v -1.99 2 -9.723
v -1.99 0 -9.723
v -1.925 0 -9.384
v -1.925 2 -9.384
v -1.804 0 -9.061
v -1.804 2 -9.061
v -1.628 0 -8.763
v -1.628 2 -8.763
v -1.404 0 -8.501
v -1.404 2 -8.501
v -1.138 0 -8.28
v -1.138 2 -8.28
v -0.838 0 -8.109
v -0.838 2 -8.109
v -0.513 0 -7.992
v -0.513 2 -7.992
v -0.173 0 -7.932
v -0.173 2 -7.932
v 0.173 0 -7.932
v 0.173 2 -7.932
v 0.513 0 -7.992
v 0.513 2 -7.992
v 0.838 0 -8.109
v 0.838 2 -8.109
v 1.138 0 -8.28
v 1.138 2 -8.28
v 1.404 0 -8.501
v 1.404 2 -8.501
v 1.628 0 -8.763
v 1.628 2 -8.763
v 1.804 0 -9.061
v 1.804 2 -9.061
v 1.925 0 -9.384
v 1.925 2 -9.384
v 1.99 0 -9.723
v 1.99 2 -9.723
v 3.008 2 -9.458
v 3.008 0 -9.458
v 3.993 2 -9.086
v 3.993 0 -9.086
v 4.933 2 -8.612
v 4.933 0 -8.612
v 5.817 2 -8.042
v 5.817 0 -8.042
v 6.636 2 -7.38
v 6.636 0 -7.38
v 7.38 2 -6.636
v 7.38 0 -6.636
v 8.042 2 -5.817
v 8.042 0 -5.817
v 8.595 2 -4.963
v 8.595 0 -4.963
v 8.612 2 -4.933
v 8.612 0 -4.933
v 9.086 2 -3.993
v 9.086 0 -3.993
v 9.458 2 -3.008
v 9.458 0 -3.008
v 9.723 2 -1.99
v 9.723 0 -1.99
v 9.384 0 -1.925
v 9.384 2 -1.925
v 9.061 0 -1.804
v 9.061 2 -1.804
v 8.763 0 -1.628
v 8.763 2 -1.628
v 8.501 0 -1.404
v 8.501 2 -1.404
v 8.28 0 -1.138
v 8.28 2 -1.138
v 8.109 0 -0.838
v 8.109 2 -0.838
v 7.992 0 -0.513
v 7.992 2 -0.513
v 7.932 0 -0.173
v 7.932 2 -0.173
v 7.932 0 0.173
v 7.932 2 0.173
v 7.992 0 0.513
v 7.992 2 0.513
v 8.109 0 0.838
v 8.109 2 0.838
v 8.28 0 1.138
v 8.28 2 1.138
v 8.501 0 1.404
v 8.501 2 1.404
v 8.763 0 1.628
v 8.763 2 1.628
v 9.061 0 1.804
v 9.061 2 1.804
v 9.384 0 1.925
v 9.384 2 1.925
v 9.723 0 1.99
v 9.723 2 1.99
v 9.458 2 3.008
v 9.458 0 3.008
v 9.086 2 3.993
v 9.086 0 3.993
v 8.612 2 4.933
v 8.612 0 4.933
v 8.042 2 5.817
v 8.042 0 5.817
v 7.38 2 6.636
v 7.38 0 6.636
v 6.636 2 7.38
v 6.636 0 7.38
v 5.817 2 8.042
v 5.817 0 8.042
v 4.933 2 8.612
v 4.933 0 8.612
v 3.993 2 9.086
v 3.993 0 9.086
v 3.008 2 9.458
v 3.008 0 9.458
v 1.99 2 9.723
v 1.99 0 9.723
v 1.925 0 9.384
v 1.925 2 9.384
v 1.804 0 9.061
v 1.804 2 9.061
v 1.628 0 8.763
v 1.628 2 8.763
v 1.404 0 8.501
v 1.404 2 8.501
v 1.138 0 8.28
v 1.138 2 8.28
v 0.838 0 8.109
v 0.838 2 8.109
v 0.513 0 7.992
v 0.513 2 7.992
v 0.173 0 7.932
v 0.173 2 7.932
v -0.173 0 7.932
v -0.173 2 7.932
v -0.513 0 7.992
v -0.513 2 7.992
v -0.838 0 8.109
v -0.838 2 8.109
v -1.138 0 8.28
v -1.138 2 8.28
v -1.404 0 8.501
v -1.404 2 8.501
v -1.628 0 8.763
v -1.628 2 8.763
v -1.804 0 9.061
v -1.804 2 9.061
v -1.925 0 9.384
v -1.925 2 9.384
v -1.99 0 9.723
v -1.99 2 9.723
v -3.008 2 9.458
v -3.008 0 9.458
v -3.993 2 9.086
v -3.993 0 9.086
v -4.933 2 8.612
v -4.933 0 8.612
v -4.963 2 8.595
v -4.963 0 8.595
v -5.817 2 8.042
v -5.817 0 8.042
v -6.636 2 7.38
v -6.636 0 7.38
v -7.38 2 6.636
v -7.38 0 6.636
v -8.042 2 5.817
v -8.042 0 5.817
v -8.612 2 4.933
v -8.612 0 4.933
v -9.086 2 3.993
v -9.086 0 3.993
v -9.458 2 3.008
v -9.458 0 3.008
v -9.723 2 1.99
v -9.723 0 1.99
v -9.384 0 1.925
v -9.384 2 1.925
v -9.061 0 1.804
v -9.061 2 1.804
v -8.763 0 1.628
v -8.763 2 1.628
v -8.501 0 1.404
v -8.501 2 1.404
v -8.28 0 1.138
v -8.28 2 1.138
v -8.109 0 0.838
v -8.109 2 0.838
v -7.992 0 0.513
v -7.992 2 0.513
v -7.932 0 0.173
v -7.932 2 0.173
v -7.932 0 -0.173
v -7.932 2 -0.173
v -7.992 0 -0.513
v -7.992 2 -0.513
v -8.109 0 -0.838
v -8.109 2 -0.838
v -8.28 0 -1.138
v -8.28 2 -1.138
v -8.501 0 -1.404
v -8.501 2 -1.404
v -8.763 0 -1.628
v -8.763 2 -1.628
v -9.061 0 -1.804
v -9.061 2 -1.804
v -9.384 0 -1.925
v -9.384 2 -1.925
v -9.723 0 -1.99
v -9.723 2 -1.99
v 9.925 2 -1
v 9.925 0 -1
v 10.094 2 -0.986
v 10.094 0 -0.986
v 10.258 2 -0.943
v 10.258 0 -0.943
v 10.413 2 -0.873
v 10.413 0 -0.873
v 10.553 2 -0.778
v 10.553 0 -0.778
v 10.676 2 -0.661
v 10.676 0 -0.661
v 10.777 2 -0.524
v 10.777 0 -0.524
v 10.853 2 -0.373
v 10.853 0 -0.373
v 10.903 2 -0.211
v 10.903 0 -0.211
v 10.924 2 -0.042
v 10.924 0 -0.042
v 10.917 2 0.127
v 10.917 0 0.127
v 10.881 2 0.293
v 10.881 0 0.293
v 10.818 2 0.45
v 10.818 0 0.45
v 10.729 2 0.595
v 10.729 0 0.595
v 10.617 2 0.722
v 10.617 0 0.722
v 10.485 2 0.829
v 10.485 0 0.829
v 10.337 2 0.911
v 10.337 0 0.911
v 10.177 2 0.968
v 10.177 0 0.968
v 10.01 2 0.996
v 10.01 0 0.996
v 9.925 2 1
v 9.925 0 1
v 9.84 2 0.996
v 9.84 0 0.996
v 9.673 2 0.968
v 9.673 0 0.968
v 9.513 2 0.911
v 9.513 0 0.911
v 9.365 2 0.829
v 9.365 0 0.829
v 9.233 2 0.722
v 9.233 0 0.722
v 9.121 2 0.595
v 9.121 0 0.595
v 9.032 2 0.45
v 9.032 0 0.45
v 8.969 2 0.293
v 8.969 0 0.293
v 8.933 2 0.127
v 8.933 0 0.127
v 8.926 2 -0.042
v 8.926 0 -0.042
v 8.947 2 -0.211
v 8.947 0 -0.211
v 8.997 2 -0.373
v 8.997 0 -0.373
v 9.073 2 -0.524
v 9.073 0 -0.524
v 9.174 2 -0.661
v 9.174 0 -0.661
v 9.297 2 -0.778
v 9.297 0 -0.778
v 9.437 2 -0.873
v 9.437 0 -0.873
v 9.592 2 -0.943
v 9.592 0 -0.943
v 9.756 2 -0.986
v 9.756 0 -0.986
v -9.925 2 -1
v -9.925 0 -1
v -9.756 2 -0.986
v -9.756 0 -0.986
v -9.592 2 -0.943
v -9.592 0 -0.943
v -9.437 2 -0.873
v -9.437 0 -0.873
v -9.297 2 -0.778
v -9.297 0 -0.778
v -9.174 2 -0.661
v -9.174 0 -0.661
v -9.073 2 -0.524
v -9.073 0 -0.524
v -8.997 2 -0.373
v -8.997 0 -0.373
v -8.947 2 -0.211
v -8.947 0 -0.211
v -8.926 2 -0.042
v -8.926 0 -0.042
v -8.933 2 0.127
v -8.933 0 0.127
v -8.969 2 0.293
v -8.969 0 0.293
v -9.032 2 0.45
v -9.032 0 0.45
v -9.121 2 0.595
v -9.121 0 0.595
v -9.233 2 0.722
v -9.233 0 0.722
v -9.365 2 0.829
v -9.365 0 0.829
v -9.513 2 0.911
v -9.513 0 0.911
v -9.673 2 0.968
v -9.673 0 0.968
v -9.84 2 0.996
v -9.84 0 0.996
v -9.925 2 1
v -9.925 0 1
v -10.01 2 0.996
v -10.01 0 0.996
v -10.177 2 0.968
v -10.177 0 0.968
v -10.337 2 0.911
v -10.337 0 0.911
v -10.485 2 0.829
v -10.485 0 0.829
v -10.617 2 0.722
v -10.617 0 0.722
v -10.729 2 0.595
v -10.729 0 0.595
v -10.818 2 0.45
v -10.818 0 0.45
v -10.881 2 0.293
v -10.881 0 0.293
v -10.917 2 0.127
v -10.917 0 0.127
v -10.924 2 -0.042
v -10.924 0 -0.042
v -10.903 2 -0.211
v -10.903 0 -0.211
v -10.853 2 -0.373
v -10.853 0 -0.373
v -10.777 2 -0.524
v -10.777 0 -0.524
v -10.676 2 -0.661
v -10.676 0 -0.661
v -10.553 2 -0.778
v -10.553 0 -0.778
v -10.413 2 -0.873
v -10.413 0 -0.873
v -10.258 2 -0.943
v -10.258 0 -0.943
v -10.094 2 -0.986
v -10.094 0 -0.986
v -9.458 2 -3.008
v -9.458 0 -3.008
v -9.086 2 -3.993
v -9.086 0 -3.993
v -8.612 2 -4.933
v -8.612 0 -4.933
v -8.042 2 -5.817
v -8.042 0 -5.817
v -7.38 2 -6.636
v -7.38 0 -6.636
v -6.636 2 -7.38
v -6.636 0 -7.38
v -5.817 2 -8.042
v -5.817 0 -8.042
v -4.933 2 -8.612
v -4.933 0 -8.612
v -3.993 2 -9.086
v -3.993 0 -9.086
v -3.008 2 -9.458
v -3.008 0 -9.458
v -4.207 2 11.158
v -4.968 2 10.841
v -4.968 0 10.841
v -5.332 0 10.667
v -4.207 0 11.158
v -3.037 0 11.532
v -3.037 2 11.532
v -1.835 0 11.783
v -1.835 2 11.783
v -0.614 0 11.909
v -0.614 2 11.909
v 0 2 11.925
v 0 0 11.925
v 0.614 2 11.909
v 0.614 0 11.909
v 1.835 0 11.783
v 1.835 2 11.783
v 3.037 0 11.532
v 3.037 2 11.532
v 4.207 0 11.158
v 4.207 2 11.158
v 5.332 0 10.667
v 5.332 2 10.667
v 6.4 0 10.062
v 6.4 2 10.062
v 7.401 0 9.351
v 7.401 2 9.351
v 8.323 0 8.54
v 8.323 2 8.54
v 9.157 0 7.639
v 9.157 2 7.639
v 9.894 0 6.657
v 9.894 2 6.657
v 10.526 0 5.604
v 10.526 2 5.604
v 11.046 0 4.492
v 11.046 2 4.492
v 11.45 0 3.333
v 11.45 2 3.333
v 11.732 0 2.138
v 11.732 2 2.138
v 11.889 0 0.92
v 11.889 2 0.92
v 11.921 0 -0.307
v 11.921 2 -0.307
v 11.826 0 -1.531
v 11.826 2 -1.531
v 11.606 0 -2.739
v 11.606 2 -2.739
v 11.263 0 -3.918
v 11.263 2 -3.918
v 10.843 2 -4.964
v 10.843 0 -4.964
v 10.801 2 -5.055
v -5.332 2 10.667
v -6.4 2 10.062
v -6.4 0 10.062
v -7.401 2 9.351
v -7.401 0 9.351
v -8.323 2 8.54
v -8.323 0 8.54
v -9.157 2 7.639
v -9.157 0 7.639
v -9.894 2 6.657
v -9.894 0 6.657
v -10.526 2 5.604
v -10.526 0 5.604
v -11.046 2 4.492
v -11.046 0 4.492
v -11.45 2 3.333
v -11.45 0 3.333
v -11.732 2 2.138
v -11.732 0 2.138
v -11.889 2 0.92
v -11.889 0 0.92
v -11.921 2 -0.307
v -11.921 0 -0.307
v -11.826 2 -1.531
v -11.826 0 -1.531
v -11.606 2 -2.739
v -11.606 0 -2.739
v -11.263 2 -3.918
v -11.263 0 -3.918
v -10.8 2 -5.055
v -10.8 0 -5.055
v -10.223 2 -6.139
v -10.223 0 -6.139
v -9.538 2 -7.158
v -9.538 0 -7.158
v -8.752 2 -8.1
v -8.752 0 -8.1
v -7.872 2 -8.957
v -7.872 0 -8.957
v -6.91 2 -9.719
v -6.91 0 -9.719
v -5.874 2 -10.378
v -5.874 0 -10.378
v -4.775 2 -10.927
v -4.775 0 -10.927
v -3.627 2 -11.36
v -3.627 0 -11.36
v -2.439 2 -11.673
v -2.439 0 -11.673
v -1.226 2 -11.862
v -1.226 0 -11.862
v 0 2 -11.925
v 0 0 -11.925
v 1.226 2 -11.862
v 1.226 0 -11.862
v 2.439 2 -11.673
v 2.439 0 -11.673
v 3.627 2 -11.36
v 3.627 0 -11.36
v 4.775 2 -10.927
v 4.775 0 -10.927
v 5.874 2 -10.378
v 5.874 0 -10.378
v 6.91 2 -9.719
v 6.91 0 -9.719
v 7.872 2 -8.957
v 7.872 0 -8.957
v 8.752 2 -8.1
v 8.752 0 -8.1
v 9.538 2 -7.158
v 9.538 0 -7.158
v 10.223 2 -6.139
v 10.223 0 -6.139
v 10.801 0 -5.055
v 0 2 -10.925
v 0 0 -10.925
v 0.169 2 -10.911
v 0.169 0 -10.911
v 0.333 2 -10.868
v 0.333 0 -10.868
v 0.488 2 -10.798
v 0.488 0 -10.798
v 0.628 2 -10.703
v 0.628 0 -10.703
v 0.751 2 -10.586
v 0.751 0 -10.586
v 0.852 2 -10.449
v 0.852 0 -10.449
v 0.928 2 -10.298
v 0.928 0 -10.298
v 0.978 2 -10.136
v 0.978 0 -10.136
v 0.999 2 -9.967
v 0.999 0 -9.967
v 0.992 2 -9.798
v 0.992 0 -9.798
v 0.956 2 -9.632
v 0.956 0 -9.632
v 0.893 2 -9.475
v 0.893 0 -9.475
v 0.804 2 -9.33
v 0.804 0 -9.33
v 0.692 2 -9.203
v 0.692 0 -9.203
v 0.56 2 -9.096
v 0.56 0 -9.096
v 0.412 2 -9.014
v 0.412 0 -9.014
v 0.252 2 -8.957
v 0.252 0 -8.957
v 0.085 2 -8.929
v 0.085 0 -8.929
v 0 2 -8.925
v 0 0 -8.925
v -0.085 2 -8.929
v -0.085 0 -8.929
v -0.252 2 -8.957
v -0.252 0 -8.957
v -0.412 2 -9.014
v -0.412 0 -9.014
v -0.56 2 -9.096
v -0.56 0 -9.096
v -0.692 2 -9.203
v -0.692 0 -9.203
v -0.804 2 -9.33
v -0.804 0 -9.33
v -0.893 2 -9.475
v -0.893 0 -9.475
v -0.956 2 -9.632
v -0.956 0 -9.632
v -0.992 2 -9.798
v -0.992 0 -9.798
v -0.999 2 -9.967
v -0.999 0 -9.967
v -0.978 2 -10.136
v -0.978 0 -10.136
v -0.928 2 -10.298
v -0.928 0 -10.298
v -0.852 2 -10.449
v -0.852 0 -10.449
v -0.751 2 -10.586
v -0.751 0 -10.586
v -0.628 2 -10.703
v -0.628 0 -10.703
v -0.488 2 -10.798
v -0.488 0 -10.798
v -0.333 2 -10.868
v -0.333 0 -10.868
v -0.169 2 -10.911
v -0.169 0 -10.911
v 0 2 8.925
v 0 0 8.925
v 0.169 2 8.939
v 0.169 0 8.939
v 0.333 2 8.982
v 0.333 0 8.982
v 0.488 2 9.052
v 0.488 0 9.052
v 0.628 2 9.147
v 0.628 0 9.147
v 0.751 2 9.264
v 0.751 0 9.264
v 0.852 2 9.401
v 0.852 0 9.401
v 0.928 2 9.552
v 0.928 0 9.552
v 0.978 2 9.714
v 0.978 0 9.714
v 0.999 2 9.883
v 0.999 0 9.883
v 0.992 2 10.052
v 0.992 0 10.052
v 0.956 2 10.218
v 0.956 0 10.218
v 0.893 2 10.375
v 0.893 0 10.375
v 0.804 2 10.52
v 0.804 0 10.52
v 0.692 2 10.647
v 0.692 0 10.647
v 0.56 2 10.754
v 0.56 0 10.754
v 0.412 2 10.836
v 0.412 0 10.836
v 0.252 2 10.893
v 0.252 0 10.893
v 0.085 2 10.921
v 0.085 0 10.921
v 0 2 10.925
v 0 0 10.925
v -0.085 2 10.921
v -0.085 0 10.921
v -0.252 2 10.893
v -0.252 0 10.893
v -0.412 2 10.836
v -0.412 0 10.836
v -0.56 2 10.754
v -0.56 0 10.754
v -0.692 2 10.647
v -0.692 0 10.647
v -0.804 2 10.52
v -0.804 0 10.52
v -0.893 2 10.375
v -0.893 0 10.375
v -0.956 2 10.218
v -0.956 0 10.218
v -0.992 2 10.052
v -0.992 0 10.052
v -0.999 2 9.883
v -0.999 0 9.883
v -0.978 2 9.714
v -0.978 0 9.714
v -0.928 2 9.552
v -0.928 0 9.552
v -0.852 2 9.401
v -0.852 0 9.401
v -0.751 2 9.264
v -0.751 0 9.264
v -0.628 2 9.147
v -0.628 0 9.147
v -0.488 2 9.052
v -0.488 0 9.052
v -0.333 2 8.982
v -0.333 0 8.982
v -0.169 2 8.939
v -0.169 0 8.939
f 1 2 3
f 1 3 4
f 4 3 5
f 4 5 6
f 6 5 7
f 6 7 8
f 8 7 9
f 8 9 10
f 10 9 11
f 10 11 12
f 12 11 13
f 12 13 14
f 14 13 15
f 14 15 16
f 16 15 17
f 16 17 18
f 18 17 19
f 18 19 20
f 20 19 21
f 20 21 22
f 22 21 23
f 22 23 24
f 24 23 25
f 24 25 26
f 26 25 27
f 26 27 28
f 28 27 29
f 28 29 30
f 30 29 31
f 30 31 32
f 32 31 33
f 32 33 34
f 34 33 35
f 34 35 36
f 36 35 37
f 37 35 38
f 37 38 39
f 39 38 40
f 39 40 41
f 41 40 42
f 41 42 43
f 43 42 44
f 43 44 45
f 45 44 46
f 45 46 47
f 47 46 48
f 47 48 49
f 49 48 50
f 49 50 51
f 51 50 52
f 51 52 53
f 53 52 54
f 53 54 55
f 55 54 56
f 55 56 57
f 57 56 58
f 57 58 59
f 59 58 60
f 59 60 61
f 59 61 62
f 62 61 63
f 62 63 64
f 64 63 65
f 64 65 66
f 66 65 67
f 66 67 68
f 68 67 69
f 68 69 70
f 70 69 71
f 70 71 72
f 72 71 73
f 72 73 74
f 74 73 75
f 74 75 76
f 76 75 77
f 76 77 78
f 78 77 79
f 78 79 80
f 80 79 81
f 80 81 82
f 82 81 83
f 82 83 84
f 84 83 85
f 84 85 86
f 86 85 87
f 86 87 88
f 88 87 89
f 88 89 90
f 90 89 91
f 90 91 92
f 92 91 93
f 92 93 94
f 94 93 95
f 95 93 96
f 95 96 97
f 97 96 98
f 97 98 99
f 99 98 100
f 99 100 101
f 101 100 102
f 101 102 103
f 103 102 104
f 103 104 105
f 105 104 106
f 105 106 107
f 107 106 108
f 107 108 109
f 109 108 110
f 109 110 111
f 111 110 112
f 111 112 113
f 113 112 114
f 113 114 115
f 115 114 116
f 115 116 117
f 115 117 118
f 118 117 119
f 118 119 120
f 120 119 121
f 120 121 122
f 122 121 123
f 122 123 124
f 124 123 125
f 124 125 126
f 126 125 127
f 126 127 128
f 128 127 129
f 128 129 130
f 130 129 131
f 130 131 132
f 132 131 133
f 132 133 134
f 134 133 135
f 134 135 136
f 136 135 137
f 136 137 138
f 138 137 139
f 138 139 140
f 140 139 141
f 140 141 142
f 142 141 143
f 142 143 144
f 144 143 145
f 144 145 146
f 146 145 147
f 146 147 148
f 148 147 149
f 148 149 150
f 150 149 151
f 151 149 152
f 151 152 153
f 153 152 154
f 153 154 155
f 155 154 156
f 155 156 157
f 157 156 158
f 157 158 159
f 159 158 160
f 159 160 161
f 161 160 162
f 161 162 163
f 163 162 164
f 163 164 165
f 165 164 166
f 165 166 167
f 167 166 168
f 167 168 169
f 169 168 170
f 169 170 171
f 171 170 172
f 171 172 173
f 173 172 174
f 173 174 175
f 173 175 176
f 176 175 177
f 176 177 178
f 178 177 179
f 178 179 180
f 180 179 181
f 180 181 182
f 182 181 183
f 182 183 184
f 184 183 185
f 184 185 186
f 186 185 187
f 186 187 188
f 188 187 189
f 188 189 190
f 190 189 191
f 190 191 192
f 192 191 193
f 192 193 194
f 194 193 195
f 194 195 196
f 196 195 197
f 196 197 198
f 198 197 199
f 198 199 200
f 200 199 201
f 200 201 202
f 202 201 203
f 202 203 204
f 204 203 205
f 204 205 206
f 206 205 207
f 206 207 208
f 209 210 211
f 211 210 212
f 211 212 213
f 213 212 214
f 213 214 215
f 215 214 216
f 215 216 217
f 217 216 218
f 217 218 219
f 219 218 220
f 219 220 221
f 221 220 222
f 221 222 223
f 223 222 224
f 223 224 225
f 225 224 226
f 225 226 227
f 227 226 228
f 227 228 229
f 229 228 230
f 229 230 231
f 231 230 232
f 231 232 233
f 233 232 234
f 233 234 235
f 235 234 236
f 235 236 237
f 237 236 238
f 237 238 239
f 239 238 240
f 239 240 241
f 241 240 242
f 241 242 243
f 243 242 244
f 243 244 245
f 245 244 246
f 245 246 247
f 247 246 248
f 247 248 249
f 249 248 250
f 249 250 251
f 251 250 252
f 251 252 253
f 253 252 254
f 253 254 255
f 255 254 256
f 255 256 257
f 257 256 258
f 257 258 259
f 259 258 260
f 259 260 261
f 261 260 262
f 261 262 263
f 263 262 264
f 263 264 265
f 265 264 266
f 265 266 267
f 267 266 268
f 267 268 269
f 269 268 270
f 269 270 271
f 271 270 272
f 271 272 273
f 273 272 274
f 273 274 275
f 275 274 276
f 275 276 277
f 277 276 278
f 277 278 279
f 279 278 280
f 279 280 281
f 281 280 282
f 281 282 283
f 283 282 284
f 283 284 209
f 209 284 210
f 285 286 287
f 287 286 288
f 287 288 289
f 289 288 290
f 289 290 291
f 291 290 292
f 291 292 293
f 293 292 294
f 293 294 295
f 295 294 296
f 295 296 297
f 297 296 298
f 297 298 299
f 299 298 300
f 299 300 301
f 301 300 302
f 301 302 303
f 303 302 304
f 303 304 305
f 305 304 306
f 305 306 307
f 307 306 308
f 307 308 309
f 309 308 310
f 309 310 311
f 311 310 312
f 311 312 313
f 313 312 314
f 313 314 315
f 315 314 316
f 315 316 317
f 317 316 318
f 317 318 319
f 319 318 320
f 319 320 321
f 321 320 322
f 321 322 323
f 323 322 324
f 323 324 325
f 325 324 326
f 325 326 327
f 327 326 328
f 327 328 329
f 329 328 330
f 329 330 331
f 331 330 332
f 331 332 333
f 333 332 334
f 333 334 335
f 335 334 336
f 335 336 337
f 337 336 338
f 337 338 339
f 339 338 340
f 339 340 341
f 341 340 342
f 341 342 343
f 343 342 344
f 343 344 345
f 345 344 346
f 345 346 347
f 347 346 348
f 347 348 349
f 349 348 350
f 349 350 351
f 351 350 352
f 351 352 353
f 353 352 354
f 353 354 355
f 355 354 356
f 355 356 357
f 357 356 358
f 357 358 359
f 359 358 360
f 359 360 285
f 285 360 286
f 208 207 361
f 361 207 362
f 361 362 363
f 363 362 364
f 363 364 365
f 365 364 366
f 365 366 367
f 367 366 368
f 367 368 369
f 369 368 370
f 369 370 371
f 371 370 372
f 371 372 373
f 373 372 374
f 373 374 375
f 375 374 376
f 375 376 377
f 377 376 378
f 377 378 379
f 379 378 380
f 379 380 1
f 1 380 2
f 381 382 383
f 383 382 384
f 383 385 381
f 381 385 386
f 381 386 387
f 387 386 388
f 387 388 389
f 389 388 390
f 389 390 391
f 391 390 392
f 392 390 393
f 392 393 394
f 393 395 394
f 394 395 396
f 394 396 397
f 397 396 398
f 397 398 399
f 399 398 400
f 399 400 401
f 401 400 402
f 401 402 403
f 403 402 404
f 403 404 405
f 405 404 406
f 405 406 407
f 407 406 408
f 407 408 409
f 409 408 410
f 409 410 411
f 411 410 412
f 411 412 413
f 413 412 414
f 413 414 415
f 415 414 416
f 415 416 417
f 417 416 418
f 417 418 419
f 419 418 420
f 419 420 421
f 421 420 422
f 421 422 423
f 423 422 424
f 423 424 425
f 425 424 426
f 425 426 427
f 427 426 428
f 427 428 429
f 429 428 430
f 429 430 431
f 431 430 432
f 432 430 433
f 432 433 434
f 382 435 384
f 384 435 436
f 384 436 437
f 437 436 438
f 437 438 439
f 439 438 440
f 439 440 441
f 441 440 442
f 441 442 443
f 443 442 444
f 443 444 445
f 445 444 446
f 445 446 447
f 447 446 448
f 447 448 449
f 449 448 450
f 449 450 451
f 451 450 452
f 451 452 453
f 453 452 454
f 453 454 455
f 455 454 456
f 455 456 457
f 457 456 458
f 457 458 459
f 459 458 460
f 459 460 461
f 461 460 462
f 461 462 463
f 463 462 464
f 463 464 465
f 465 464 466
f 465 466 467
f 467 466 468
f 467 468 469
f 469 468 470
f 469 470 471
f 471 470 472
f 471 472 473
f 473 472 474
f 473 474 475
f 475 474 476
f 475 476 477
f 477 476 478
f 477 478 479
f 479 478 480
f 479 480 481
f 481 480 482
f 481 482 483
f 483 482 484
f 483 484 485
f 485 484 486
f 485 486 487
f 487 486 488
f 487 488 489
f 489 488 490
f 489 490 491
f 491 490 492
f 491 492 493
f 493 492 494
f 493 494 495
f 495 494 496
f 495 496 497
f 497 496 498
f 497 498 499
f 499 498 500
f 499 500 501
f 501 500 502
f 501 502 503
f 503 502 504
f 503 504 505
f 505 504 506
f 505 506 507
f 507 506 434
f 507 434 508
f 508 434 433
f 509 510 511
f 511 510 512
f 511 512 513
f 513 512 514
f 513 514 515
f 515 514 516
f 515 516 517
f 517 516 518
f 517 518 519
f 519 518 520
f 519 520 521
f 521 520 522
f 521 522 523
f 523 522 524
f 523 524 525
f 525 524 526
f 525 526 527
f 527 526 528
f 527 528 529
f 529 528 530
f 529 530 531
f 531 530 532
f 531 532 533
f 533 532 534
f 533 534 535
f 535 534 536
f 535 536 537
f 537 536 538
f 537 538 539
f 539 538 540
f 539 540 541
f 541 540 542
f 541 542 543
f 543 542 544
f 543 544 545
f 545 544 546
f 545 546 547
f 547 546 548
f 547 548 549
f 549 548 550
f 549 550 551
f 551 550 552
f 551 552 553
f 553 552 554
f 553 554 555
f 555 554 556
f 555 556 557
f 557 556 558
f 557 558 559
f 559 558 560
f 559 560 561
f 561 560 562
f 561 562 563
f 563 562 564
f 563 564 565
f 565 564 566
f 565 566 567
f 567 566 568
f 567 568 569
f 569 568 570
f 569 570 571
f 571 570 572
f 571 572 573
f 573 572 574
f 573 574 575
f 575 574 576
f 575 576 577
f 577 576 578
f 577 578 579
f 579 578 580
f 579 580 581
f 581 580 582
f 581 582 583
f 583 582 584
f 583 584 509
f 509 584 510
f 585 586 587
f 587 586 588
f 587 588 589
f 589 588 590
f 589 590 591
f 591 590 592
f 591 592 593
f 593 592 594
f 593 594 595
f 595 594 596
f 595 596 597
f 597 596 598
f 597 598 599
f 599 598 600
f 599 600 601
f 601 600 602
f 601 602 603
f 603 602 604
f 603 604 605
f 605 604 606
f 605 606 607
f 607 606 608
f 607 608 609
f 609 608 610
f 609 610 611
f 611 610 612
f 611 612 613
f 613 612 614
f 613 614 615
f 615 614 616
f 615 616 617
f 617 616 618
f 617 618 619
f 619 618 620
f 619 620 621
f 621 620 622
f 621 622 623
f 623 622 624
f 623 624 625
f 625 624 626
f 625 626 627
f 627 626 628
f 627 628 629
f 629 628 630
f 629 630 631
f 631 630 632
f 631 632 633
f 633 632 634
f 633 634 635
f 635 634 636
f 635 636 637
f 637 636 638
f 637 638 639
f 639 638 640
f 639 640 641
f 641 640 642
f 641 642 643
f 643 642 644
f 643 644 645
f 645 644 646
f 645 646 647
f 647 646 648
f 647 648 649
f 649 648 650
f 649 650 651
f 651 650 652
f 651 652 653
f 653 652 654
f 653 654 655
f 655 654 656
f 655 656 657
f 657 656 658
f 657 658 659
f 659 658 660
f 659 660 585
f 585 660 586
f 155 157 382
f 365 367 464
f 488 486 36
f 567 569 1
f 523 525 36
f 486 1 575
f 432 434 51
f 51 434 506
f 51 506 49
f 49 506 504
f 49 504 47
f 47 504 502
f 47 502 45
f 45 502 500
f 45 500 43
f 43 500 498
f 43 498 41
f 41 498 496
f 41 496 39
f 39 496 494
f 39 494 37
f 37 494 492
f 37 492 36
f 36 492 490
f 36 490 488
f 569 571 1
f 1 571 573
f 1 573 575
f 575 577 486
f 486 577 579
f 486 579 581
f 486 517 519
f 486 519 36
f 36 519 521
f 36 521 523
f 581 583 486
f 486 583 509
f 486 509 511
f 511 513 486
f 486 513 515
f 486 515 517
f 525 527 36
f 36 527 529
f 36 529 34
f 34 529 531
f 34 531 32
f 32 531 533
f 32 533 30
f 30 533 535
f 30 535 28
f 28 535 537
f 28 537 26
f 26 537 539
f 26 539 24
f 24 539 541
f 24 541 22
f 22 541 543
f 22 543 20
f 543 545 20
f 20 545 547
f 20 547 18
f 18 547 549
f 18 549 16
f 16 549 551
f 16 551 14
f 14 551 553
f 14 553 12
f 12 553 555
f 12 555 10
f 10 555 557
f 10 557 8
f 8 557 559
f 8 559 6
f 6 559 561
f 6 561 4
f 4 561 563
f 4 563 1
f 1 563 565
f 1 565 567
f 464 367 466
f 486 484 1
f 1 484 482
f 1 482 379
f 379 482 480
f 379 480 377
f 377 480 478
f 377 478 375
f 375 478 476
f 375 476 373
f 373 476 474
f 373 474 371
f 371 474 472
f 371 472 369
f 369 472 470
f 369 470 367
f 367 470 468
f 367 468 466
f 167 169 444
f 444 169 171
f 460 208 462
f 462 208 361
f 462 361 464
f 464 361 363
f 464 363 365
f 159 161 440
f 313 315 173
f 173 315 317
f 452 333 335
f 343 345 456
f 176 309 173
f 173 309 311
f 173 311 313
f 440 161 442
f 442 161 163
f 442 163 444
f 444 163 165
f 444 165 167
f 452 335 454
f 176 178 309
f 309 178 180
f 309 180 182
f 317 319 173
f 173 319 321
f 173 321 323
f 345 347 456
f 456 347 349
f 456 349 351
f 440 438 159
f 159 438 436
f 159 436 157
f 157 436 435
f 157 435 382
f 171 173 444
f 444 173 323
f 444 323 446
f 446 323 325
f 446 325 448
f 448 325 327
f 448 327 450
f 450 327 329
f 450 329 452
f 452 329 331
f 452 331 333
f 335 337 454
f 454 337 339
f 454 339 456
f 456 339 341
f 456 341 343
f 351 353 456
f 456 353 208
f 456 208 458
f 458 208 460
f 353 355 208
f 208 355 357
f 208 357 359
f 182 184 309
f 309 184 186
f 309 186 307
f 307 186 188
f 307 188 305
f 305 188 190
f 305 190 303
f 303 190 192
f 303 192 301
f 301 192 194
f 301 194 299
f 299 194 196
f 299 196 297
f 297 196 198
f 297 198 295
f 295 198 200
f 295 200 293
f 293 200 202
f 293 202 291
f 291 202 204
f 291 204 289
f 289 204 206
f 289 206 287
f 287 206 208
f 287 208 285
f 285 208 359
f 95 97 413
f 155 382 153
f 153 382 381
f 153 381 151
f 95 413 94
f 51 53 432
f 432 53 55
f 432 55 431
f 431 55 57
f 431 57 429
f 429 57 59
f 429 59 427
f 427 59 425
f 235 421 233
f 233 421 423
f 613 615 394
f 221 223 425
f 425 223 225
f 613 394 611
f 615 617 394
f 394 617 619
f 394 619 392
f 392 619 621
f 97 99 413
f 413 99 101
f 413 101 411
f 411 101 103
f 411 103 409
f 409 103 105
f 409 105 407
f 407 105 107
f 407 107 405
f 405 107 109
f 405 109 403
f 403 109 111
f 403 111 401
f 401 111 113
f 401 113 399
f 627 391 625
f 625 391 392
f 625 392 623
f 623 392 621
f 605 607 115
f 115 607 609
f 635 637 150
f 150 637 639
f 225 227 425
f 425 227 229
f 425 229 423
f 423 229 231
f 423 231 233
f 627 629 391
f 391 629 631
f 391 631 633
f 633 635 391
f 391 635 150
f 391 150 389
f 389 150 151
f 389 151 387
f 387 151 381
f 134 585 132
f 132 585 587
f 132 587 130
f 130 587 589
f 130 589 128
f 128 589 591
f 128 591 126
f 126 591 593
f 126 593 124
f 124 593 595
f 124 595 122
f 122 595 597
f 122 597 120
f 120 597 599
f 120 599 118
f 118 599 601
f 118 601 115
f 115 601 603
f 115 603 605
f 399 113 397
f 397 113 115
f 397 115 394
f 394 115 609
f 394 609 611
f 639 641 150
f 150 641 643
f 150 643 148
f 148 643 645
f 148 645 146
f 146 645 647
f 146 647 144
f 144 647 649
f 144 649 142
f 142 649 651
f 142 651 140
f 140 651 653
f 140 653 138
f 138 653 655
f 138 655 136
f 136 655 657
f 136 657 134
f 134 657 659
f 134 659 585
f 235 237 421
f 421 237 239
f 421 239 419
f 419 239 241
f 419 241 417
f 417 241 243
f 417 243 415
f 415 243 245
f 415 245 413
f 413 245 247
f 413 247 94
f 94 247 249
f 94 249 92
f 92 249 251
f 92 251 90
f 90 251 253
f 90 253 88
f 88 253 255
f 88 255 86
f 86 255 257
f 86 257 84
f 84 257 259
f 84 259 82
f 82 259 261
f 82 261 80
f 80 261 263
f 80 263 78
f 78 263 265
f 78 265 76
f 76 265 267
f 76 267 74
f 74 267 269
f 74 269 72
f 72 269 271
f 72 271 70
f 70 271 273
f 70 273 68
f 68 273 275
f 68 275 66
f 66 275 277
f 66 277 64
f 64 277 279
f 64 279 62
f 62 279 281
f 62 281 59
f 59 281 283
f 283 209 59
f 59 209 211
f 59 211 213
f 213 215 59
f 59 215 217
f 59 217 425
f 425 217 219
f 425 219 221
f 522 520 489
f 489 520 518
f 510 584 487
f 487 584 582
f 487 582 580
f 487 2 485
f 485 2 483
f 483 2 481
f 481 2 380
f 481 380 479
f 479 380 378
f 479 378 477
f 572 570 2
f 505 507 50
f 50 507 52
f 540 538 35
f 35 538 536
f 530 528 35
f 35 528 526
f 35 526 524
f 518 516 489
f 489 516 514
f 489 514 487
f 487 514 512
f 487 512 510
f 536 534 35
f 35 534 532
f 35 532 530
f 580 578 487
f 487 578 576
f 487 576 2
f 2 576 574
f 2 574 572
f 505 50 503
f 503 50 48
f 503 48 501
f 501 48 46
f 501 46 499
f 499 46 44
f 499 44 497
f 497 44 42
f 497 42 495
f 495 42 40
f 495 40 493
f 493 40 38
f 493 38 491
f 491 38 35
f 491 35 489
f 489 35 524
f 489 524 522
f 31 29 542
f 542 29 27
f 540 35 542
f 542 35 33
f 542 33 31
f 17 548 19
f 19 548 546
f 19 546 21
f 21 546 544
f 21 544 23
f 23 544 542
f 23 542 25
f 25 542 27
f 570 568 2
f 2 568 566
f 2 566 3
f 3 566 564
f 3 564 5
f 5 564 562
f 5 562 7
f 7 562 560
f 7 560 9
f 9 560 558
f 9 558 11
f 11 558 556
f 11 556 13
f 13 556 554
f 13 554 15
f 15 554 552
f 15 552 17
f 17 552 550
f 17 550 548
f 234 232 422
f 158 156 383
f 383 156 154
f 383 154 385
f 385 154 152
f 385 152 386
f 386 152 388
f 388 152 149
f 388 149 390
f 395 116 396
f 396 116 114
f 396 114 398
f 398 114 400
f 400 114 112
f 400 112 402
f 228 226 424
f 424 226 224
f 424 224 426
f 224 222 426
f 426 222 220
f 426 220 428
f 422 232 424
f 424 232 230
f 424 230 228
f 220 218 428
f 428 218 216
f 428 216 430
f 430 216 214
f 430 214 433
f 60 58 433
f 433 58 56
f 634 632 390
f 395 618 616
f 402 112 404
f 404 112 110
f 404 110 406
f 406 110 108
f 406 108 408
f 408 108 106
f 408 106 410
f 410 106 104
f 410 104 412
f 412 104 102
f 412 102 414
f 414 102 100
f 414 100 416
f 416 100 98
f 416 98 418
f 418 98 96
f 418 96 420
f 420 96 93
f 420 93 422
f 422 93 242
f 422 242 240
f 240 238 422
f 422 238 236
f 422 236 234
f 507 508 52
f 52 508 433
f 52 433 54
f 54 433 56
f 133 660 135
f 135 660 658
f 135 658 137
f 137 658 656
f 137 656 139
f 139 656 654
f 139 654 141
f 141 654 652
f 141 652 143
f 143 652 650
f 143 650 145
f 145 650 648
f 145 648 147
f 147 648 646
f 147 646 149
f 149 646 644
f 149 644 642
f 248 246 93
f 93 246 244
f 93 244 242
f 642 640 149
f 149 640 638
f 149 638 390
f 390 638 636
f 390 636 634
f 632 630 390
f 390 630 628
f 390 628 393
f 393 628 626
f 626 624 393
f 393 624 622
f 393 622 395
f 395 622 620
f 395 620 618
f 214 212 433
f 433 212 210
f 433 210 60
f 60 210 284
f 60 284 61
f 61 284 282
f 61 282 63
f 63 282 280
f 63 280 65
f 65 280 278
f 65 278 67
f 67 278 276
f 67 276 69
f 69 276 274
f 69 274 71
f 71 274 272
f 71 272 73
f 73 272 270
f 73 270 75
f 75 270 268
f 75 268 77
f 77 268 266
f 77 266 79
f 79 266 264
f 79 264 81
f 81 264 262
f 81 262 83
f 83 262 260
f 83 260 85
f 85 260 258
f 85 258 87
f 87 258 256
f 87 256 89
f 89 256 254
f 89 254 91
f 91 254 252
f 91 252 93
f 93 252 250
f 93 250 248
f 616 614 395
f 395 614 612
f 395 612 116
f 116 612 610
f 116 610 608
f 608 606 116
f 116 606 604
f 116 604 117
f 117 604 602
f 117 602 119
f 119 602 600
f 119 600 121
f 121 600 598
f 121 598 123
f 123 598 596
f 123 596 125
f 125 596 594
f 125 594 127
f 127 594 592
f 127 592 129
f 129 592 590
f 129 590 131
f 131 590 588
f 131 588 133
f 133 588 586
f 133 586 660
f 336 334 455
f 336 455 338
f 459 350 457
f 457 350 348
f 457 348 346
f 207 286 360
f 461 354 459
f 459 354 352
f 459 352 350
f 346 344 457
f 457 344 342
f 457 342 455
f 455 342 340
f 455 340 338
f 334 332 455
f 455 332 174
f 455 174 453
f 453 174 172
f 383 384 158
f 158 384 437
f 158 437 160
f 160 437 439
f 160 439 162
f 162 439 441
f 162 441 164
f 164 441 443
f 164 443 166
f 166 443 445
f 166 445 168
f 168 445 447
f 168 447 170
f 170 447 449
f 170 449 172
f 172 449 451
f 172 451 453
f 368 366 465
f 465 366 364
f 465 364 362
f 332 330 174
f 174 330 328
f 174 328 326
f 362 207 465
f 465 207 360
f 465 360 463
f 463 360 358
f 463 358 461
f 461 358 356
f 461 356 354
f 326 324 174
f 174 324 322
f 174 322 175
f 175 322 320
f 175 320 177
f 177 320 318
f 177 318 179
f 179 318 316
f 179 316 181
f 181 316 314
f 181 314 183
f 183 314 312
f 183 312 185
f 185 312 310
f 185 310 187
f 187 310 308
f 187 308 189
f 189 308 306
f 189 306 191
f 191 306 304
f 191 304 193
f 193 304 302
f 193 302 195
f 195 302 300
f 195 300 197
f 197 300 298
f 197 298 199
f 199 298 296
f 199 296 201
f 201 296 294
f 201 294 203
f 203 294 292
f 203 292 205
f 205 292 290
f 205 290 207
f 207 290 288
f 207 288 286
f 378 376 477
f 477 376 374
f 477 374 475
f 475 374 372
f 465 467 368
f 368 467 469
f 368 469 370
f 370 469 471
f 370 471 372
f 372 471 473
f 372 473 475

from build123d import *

# Parameters (mm, degrees)
SKETCH1_R           = 11.925
SKETCH1_R_2         = 1
BOSS_EXTRUDE1_DEPTH = 2


with BuildPart() as part:
    # Sketch1 → Boss-Extrude1 (new body)
    with BuildSketch(Plane(origin=(0, 0, 0), x_dir=(1, 0, 0), z_dir=(0, 1, 0))):
        with Locations(Location((0, 0, 0), (0, 0, 270))):
            Circle(SKETCH1_R)
        with Locations(Location((9.925, 0, 0), (0, 0, 270))):
            Circle(SKETCH1_R_2, mode=Mode.SUBTRACT)
        with BuildLine():
            ThreePointArc((-1.9898224, -9.723488665), (-7.018034803, -7.018034803), (-9.723488665, -1.9898224))
            ThreePointArc((-9.723488665, -1.9898224), (-7.925, 0), (-9.723488665, 1.9898224))
            ThreePointArc((-9.723488665, 1.9898224), (-7.018034803, 7.018034803), (-1.9898224, 9.723488665))
            ThreePointArc((-1.9898224, 9.723488665), (0, 7.925), (1.9898224, 9.723488665))
            ThreePointArc((1.9898224, 9.723488665), (7.018034803, 7.018034803), (9.723488665, 1.9898224))
            ThreePointArc((9.723488665, 1.9898224), (7.925, 0), (9.723488665, -1.9898224))
            ThreePointArc((9.723488665, -1.9898224), (7.018034803, -7.018034803), (1.9898224, -9.723488665))
            ThreePointArc((1.9898224, -9.723488665), (0, -7.925), (-1.9898224, -9.723488665))
        make_face(mode=Mode.SUBTRACT)
        with Locations(Location((-9.925, 0, 0), (0, 0, 270))):
            Circle(SKETCH1_R_2, mode=Mode.SUBTRACT)
        with Locations(Location((0, -9.925, 0), (0, 0, 270))):
            Circle(SKETCH1_R_2, mode=Mode.SUBTRACT)
        with Locations(Location((0, 9.925, 0), (0, 0, 270))):
            Circle(SKETCH1_R_2, mode=Mode.SUBTRACT)
    extrude(amount=BOSS_EXTRUDE1_DEPTH)


solid = part.part
